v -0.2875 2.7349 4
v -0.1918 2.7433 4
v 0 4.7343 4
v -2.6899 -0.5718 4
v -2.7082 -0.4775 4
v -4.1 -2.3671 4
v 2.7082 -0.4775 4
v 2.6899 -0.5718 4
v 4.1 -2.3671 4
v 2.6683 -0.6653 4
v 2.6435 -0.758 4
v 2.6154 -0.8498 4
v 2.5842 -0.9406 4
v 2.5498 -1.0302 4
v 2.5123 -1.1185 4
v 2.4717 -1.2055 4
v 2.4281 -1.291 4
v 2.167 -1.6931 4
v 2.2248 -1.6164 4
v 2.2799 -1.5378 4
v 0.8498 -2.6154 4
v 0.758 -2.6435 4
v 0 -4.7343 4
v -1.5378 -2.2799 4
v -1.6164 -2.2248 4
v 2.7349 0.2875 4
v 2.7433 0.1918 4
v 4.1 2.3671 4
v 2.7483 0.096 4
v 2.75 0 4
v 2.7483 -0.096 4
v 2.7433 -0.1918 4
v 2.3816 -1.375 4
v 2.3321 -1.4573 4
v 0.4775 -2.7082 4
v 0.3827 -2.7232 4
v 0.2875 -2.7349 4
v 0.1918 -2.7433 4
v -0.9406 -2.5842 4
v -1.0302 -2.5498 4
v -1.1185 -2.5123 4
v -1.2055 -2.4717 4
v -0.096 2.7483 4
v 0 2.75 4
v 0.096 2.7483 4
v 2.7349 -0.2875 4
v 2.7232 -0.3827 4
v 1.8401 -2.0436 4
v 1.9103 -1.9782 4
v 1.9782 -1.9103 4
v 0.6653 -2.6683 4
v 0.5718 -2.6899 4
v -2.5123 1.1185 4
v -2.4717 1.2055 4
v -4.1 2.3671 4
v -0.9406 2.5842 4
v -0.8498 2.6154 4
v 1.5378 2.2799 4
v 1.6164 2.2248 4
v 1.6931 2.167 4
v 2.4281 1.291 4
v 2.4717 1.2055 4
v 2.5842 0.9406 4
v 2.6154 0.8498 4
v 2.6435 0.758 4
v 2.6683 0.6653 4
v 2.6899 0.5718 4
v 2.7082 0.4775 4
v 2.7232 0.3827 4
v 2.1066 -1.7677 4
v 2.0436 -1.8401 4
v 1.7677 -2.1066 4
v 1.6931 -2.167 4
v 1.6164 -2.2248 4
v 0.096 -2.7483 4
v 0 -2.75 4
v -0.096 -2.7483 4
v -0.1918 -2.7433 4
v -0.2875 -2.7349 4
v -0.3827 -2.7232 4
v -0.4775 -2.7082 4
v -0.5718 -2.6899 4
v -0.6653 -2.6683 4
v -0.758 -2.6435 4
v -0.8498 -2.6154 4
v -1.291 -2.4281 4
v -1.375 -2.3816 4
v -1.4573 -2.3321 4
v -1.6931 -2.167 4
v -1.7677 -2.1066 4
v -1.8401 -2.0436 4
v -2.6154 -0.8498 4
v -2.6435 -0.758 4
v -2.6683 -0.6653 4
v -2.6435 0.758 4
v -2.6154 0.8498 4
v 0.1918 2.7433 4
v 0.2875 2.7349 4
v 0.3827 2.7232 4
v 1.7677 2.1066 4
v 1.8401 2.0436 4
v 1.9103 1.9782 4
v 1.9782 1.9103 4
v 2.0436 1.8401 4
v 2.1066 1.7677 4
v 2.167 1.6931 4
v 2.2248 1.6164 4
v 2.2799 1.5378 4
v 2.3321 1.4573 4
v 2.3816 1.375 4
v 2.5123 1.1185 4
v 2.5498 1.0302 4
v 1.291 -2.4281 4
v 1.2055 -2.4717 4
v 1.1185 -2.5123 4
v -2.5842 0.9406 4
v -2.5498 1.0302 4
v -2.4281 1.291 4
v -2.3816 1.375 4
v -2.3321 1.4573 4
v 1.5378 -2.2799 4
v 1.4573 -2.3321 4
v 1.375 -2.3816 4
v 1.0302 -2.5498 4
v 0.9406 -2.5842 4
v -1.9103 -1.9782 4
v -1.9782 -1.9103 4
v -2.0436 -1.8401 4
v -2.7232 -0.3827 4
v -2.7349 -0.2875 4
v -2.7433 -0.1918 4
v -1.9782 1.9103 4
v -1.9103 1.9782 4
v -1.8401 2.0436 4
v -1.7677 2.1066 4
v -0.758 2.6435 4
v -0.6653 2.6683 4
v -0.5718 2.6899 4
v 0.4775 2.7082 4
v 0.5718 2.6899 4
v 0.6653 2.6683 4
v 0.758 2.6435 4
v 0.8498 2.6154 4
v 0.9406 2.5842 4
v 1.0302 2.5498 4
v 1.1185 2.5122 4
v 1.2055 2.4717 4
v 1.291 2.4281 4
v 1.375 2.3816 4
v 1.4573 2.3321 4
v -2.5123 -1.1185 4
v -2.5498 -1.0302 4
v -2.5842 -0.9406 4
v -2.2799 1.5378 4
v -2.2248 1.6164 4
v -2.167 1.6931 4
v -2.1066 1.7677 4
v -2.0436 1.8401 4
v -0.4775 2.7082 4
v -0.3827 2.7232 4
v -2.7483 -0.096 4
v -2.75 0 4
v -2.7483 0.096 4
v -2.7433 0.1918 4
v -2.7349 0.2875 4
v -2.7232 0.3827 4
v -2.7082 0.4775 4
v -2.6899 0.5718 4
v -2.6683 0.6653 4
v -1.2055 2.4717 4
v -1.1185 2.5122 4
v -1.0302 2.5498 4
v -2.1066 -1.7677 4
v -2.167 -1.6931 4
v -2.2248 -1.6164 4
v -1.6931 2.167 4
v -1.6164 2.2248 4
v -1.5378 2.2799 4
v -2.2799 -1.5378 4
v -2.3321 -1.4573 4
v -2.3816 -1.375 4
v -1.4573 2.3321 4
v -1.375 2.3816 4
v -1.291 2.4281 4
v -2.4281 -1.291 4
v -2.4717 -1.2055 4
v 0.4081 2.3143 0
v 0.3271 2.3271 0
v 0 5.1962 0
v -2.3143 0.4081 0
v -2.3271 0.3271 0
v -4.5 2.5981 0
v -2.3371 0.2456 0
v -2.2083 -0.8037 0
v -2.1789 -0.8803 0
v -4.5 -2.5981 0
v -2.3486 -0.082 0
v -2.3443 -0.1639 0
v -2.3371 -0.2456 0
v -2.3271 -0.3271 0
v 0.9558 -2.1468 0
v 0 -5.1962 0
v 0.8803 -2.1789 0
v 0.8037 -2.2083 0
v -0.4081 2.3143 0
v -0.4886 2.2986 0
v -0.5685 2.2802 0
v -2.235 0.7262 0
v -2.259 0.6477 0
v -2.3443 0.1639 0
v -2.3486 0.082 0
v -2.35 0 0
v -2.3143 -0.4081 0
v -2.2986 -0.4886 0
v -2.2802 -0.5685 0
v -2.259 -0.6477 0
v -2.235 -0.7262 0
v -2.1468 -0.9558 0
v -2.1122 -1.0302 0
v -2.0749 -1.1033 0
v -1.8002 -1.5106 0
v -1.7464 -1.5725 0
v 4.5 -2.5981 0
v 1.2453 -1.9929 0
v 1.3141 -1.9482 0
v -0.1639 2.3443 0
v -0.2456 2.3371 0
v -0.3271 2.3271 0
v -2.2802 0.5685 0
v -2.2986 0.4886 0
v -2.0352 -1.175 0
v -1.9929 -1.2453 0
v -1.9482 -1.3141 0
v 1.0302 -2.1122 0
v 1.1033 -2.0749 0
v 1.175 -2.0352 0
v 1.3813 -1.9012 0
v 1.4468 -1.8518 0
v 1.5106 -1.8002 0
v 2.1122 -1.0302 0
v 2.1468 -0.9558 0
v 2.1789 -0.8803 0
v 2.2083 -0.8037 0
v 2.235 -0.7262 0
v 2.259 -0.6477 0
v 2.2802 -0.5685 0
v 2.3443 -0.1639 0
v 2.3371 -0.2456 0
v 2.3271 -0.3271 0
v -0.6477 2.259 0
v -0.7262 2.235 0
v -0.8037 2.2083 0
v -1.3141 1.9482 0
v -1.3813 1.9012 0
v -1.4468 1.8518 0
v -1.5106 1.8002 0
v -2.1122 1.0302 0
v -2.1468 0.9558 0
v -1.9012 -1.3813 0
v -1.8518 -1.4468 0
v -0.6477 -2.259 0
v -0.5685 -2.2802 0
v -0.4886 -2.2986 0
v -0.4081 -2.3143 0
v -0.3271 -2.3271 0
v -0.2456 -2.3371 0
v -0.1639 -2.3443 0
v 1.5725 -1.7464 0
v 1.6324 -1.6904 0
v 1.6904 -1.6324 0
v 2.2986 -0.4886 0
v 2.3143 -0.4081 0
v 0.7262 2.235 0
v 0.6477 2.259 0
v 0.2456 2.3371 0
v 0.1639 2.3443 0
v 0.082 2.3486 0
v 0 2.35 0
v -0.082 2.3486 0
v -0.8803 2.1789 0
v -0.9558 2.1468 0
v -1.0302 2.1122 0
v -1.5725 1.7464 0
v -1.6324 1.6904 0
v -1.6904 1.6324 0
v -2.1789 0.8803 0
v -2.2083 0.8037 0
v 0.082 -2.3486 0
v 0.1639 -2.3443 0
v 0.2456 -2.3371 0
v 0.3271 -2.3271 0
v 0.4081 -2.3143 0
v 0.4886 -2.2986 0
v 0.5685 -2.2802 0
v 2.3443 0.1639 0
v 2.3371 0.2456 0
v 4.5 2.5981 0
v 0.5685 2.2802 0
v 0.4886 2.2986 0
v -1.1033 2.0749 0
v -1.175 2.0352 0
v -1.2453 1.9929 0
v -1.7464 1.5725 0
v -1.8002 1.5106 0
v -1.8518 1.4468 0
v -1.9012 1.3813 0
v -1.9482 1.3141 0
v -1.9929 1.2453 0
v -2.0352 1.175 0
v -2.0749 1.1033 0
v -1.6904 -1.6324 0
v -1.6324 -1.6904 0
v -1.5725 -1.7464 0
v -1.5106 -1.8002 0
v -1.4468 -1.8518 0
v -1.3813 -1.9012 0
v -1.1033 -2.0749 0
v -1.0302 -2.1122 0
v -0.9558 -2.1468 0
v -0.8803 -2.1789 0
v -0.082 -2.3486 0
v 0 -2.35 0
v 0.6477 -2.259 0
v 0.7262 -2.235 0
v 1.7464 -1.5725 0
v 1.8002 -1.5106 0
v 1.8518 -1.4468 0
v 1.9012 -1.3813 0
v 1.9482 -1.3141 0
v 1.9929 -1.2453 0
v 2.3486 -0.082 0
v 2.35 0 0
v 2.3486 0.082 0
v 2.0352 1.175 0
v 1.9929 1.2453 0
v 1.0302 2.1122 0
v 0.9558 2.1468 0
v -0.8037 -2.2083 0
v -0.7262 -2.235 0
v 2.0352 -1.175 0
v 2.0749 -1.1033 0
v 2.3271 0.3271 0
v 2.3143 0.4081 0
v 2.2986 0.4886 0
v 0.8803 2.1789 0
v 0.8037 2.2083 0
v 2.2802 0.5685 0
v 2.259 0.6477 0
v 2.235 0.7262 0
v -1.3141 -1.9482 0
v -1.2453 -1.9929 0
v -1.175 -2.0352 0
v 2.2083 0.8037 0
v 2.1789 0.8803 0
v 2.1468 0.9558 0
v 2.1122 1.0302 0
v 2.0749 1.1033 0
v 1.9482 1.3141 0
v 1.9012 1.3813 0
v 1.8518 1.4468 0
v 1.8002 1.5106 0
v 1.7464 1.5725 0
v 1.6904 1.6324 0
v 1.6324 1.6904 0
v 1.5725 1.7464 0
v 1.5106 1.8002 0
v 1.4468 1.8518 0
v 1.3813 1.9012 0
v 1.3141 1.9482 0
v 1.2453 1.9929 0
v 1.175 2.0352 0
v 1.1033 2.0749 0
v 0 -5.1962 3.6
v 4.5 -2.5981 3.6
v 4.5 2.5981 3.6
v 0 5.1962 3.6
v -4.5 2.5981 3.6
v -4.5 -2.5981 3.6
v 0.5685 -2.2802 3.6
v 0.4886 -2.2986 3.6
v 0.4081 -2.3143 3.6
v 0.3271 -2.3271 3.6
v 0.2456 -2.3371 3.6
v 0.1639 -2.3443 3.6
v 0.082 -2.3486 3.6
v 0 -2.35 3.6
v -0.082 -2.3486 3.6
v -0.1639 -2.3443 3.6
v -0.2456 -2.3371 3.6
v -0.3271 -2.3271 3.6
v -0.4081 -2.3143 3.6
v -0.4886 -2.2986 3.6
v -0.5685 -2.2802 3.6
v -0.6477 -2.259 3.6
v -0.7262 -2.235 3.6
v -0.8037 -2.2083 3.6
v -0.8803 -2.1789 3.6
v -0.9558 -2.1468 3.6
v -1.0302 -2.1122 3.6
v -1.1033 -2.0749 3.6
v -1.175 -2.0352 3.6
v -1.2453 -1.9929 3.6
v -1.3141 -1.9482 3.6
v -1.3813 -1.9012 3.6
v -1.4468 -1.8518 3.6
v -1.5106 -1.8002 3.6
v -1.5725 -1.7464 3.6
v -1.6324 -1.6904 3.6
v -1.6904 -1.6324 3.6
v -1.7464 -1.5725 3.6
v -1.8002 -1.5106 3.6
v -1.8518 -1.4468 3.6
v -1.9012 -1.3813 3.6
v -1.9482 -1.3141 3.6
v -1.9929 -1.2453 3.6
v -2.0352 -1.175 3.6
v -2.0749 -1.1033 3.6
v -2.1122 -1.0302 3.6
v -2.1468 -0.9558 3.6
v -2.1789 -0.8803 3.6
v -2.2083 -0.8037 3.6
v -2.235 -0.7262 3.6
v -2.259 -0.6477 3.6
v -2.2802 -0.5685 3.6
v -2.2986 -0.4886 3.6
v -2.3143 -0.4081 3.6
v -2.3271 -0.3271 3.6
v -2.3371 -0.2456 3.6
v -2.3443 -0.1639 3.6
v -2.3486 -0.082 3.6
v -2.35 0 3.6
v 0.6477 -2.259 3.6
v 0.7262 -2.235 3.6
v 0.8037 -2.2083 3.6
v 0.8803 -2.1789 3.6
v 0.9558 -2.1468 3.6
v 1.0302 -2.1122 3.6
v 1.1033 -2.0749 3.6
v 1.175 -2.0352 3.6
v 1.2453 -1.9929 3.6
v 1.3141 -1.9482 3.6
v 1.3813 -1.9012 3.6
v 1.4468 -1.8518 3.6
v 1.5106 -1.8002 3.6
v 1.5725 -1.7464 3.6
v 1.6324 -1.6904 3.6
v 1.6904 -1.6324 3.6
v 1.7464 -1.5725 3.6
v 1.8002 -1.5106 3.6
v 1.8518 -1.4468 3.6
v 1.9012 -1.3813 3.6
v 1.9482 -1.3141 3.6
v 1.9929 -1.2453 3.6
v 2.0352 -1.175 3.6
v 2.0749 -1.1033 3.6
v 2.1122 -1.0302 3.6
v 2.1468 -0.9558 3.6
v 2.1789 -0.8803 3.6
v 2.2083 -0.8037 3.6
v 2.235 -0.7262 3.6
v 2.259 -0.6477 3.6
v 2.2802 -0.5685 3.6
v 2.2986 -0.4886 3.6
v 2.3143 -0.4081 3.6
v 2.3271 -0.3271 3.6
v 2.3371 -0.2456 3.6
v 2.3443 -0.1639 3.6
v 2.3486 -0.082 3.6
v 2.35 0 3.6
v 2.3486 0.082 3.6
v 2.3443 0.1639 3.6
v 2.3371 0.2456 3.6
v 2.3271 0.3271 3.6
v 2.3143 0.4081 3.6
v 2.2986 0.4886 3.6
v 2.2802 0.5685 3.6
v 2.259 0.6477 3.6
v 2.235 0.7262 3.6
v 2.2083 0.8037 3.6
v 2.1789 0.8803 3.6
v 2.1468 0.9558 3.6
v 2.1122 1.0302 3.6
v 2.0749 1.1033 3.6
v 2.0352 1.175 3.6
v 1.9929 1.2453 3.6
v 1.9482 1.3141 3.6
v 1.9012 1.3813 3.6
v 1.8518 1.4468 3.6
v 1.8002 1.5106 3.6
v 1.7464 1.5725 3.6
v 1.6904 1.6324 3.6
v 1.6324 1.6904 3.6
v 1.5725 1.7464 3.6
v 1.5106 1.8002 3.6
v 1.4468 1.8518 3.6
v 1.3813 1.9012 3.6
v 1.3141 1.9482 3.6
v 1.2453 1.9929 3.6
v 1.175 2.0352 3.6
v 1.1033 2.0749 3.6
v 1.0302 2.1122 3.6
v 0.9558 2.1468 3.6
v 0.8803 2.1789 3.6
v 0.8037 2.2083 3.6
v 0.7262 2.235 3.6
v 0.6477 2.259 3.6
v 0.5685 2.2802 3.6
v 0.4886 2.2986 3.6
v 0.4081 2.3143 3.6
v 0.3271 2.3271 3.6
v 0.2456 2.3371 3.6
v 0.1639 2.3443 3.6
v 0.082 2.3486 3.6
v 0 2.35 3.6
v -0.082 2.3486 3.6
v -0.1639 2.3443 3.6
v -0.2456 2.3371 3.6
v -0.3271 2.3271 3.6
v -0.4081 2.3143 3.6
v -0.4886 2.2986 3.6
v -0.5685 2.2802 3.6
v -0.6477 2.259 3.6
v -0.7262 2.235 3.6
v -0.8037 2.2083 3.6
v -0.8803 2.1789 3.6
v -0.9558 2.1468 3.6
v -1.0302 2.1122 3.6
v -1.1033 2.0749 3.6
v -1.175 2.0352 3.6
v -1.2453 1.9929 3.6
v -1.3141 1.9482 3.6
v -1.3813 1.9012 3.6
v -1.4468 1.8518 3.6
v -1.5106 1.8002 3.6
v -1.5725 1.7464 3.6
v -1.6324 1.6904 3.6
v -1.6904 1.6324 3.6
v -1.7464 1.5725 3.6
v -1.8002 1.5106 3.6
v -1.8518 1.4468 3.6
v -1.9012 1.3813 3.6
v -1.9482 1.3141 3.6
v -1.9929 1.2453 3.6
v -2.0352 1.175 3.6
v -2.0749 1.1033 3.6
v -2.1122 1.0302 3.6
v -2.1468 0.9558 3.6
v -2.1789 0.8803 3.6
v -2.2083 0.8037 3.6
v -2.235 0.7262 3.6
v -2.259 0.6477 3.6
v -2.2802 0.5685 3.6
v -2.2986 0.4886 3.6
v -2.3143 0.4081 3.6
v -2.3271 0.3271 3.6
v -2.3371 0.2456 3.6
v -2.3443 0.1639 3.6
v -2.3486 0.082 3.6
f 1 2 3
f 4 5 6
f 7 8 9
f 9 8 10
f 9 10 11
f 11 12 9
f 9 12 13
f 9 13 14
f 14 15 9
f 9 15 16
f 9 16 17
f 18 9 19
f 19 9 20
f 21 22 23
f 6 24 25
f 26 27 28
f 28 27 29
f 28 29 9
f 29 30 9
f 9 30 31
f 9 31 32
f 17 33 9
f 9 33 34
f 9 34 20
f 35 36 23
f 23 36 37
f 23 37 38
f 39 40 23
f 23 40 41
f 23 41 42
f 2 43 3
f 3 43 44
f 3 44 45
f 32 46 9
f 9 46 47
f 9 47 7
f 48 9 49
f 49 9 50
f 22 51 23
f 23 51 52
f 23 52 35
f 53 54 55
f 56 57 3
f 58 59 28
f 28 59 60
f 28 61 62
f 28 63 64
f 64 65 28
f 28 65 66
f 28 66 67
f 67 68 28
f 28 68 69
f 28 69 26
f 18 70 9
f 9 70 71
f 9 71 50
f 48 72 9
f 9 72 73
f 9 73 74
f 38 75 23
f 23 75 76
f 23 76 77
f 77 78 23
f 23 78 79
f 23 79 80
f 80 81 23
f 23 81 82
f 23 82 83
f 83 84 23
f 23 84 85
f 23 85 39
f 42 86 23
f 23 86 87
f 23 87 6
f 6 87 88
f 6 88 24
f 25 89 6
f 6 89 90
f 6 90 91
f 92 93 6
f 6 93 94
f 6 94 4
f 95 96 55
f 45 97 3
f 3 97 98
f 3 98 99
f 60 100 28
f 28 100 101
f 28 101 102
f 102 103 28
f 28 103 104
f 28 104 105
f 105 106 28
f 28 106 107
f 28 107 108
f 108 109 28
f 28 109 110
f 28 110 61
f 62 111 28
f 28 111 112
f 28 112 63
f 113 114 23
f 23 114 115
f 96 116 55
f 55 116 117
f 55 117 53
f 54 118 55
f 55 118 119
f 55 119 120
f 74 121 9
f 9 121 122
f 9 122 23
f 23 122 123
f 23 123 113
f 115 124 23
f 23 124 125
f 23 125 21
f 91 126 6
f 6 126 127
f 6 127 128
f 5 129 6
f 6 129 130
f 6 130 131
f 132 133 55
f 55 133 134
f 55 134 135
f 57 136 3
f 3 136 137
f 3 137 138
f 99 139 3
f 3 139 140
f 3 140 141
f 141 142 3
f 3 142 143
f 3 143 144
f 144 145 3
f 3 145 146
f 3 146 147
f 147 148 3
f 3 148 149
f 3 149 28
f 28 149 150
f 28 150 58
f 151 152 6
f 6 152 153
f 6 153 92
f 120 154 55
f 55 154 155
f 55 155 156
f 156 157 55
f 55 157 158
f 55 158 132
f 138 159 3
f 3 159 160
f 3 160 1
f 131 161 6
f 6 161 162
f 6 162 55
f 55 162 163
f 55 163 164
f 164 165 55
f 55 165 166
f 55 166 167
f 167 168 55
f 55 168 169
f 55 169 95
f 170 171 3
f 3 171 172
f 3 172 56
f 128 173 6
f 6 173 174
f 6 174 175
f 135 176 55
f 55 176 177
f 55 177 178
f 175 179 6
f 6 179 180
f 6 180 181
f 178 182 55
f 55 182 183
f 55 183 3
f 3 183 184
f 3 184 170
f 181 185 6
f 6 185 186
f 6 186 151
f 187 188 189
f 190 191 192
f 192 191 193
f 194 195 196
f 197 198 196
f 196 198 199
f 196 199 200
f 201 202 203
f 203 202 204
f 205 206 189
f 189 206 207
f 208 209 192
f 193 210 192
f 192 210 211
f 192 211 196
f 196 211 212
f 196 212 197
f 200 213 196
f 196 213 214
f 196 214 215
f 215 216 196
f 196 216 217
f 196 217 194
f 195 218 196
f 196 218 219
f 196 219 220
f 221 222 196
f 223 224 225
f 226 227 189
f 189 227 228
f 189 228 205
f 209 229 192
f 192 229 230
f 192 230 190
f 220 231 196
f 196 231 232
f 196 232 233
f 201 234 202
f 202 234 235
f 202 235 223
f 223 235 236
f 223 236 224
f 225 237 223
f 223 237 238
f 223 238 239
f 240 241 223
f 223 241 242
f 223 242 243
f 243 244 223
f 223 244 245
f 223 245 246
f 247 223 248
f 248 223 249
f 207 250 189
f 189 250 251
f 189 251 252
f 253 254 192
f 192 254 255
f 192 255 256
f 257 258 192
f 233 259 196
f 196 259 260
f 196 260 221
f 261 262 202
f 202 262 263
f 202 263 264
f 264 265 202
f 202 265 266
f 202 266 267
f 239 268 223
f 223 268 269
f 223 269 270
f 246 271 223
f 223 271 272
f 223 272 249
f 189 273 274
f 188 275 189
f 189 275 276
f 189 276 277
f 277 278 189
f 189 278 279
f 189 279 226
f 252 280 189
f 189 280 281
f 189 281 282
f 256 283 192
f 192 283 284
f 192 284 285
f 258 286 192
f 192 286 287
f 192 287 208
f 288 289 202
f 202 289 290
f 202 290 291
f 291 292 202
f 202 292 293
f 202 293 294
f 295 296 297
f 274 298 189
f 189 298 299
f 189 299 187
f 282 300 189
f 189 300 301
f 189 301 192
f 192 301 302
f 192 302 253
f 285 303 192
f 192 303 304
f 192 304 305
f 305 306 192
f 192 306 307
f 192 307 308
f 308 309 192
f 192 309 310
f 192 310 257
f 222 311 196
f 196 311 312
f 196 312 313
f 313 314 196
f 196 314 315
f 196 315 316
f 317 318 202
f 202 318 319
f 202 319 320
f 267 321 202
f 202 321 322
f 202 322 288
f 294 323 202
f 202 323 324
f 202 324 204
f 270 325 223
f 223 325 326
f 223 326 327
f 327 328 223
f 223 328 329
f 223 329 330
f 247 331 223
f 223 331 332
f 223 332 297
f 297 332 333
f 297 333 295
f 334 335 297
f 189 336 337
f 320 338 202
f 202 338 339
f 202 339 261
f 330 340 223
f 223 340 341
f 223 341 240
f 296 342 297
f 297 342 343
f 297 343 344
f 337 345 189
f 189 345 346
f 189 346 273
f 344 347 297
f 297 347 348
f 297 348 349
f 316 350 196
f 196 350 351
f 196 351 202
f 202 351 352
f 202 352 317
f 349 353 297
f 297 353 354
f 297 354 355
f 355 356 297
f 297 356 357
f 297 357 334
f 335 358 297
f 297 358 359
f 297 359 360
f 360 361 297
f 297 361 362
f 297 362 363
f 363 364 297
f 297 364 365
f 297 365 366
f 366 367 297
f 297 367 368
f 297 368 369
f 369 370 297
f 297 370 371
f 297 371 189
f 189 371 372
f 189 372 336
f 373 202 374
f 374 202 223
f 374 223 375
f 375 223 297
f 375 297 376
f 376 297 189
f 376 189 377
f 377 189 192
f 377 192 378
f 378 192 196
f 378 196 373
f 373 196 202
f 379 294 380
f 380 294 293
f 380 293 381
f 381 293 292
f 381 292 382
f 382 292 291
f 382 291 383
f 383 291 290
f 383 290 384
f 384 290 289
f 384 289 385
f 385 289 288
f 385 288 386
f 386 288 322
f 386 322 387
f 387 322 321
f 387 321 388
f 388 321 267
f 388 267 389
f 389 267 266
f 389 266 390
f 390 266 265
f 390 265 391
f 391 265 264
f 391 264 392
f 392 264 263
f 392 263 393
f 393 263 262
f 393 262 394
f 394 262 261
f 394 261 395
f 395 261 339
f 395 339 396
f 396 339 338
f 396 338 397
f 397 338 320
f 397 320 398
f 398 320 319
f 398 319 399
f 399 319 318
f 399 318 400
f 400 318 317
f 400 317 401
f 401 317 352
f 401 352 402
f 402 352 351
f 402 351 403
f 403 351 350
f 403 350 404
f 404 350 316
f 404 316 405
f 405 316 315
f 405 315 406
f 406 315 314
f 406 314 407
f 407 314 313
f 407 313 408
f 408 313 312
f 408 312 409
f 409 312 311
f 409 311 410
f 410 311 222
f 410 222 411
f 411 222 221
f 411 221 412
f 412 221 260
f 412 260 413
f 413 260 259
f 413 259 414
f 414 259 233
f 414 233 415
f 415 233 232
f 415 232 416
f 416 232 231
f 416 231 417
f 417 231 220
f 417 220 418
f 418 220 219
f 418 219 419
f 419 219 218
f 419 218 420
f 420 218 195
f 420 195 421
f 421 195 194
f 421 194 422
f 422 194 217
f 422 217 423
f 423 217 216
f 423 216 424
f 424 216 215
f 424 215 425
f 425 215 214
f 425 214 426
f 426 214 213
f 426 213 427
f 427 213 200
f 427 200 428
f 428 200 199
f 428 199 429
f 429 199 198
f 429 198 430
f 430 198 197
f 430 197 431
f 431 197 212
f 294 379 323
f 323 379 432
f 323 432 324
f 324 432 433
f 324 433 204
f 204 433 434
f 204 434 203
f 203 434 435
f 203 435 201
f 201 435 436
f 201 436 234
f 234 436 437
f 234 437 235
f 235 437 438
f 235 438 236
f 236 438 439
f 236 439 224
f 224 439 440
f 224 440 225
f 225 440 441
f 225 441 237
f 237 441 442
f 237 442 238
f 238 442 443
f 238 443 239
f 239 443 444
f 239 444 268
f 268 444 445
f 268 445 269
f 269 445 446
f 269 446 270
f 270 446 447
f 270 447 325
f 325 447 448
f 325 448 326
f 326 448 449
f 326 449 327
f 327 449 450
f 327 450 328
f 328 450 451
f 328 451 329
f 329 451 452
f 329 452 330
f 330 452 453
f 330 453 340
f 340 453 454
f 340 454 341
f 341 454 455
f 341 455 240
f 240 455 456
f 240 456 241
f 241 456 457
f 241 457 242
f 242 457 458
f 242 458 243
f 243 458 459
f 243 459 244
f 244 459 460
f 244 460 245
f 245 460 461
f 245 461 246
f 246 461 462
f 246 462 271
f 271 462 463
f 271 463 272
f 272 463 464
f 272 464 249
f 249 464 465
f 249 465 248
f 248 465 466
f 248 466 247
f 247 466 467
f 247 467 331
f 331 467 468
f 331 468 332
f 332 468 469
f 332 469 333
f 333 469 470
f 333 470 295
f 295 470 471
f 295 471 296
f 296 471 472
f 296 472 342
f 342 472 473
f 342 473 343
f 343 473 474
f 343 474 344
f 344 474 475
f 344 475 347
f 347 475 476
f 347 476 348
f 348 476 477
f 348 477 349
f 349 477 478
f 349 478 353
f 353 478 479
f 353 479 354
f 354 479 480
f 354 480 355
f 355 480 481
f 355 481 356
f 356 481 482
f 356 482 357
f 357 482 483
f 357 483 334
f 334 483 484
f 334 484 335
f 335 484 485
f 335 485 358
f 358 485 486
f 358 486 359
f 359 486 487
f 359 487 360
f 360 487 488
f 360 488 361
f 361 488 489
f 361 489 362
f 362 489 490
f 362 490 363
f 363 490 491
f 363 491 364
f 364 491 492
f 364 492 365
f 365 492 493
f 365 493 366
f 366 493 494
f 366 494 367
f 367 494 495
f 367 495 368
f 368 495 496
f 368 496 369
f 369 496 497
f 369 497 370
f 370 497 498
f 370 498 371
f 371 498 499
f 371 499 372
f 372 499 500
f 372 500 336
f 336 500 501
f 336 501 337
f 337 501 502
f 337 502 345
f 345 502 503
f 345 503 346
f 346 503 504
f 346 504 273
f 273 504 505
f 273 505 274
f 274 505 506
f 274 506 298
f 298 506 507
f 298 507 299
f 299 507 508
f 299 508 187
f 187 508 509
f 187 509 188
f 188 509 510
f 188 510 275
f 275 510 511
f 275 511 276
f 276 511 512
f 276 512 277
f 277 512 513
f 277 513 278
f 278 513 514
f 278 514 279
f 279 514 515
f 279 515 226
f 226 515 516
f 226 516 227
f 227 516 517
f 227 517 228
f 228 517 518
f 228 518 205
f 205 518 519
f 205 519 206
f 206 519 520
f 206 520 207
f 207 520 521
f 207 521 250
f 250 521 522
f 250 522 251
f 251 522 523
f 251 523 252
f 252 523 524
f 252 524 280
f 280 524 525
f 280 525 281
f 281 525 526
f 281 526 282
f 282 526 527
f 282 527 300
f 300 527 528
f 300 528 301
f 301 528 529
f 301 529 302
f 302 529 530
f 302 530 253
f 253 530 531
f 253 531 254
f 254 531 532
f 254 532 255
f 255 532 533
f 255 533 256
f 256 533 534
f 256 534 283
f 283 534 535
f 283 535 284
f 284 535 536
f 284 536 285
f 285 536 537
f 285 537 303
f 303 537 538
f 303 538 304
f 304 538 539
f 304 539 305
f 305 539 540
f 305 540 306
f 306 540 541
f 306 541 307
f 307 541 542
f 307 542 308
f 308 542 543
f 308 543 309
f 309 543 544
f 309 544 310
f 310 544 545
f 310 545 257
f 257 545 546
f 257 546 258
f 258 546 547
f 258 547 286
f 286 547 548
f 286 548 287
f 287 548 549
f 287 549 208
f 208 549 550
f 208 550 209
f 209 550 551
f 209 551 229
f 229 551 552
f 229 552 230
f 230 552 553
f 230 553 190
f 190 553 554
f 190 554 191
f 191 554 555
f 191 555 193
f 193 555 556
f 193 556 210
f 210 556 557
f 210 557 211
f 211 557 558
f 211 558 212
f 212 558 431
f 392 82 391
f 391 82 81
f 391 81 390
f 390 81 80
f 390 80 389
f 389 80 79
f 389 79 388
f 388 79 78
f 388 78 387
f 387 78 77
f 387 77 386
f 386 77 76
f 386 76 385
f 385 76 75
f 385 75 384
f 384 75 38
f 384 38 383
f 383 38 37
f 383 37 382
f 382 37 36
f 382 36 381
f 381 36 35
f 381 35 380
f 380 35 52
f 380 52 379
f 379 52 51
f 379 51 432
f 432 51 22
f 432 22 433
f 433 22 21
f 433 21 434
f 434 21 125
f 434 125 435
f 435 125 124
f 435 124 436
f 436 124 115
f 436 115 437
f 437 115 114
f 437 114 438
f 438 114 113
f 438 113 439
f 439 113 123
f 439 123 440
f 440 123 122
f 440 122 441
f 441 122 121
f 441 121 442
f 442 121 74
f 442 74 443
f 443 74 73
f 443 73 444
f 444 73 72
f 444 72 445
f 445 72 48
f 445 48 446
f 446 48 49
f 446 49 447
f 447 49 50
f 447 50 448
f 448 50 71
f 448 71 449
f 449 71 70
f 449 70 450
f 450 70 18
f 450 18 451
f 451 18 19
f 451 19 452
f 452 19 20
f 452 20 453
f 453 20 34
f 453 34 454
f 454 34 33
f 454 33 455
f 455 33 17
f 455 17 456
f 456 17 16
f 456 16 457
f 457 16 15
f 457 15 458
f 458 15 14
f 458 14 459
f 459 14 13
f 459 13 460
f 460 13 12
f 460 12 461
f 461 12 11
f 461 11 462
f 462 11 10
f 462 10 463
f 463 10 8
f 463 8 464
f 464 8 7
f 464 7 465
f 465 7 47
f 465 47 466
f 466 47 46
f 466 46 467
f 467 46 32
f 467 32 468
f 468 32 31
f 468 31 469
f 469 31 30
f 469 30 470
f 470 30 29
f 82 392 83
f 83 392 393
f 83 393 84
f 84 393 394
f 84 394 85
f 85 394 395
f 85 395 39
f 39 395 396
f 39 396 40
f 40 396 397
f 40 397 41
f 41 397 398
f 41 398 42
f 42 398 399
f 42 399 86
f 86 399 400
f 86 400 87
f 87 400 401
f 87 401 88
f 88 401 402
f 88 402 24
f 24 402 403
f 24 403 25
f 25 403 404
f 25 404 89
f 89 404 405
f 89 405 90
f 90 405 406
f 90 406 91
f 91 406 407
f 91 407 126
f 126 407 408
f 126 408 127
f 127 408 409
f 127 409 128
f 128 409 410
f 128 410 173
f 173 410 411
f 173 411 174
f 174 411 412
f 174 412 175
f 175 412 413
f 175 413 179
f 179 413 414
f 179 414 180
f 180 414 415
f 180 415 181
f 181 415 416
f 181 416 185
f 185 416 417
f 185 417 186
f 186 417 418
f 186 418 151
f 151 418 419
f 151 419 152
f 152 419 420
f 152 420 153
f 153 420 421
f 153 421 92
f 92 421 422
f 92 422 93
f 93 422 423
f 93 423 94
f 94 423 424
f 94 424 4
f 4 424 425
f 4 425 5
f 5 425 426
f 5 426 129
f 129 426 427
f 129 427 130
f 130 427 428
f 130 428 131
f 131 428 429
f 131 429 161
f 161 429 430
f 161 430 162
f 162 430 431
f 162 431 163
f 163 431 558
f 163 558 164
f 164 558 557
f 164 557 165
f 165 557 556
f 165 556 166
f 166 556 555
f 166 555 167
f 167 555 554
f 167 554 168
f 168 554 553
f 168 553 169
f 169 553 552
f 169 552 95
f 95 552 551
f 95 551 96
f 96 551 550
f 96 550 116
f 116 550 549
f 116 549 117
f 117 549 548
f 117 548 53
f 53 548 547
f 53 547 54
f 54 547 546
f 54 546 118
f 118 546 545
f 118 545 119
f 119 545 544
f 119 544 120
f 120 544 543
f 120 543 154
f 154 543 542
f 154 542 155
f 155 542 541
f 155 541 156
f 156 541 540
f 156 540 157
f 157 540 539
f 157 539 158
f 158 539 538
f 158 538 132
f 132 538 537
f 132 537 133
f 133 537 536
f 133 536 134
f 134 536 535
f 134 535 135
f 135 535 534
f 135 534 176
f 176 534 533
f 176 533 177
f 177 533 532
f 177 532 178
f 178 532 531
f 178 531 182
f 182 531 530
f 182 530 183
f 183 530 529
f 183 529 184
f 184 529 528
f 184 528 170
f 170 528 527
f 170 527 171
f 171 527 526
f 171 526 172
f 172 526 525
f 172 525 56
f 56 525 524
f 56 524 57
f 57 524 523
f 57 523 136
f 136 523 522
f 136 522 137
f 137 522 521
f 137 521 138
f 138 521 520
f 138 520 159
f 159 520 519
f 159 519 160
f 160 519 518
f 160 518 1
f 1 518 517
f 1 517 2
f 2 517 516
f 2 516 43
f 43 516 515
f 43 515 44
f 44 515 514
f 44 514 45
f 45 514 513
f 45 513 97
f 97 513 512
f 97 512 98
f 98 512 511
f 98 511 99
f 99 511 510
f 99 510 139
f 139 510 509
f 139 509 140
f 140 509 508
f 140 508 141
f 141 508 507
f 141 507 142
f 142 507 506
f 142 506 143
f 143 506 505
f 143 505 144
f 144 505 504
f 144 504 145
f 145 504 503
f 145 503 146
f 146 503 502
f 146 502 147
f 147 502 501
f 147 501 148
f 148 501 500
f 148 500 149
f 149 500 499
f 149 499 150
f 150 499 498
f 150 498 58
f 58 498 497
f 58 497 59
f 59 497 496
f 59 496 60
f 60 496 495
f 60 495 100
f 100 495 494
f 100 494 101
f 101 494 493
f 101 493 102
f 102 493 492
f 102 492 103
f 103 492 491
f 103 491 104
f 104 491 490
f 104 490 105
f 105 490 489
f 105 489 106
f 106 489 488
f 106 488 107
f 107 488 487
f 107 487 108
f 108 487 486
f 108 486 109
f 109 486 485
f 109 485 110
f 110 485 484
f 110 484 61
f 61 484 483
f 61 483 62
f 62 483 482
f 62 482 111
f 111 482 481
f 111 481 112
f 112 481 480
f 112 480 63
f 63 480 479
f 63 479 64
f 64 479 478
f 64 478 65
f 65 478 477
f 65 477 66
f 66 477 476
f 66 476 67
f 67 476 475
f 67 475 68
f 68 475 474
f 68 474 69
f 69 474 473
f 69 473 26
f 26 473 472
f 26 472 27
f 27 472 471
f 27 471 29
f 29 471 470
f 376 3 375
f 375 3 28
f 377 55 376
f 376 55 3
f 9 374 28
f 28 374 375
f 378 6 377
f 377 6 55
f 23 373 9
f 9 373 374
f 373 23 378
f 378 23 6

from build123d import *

# Parameters (mm, degrees)
SKETCH1_R           = 2.35
BOSS_EXTRUDE1_DEPTH = 4
CHAMFER1_SIZE       = 0.4


with BuildPart() as part:
    # Sketch1 → Boss-Extrude1 (new body)
    with BuildSketch(Plane.XY):
        Polygon((4.5, -2.598076211), (4.5, 2.598076211), (0, 5.196152423), (-4.5, 2.598076211), (-4.5, -2.598076211), (0, -5.196152423), align=None)
        Circle(SKETCH1_R, mode=Mode.SUBTRACT)
    extrude(amount=BOSS_EXTRUDE1_DEPTH)

    # Chamfer1
    chamfer1_edges = [part.edges().sort_by_distance(p)[0] for p in [
        (2.25, 3.897114317, 4),
        (-2.25, 3.897114317, 4),
        (-2.35, 0, 4),
        (-4.5, 0, 4),
        (-2.25, -3.897114317, 4),
        (2.25, -3.897114317, 4),
        (4.5, 0, 4),
    ]]
    chamfer(chamfer1_edges, length=CHAMFER1_SIZE)


solid = part.part
